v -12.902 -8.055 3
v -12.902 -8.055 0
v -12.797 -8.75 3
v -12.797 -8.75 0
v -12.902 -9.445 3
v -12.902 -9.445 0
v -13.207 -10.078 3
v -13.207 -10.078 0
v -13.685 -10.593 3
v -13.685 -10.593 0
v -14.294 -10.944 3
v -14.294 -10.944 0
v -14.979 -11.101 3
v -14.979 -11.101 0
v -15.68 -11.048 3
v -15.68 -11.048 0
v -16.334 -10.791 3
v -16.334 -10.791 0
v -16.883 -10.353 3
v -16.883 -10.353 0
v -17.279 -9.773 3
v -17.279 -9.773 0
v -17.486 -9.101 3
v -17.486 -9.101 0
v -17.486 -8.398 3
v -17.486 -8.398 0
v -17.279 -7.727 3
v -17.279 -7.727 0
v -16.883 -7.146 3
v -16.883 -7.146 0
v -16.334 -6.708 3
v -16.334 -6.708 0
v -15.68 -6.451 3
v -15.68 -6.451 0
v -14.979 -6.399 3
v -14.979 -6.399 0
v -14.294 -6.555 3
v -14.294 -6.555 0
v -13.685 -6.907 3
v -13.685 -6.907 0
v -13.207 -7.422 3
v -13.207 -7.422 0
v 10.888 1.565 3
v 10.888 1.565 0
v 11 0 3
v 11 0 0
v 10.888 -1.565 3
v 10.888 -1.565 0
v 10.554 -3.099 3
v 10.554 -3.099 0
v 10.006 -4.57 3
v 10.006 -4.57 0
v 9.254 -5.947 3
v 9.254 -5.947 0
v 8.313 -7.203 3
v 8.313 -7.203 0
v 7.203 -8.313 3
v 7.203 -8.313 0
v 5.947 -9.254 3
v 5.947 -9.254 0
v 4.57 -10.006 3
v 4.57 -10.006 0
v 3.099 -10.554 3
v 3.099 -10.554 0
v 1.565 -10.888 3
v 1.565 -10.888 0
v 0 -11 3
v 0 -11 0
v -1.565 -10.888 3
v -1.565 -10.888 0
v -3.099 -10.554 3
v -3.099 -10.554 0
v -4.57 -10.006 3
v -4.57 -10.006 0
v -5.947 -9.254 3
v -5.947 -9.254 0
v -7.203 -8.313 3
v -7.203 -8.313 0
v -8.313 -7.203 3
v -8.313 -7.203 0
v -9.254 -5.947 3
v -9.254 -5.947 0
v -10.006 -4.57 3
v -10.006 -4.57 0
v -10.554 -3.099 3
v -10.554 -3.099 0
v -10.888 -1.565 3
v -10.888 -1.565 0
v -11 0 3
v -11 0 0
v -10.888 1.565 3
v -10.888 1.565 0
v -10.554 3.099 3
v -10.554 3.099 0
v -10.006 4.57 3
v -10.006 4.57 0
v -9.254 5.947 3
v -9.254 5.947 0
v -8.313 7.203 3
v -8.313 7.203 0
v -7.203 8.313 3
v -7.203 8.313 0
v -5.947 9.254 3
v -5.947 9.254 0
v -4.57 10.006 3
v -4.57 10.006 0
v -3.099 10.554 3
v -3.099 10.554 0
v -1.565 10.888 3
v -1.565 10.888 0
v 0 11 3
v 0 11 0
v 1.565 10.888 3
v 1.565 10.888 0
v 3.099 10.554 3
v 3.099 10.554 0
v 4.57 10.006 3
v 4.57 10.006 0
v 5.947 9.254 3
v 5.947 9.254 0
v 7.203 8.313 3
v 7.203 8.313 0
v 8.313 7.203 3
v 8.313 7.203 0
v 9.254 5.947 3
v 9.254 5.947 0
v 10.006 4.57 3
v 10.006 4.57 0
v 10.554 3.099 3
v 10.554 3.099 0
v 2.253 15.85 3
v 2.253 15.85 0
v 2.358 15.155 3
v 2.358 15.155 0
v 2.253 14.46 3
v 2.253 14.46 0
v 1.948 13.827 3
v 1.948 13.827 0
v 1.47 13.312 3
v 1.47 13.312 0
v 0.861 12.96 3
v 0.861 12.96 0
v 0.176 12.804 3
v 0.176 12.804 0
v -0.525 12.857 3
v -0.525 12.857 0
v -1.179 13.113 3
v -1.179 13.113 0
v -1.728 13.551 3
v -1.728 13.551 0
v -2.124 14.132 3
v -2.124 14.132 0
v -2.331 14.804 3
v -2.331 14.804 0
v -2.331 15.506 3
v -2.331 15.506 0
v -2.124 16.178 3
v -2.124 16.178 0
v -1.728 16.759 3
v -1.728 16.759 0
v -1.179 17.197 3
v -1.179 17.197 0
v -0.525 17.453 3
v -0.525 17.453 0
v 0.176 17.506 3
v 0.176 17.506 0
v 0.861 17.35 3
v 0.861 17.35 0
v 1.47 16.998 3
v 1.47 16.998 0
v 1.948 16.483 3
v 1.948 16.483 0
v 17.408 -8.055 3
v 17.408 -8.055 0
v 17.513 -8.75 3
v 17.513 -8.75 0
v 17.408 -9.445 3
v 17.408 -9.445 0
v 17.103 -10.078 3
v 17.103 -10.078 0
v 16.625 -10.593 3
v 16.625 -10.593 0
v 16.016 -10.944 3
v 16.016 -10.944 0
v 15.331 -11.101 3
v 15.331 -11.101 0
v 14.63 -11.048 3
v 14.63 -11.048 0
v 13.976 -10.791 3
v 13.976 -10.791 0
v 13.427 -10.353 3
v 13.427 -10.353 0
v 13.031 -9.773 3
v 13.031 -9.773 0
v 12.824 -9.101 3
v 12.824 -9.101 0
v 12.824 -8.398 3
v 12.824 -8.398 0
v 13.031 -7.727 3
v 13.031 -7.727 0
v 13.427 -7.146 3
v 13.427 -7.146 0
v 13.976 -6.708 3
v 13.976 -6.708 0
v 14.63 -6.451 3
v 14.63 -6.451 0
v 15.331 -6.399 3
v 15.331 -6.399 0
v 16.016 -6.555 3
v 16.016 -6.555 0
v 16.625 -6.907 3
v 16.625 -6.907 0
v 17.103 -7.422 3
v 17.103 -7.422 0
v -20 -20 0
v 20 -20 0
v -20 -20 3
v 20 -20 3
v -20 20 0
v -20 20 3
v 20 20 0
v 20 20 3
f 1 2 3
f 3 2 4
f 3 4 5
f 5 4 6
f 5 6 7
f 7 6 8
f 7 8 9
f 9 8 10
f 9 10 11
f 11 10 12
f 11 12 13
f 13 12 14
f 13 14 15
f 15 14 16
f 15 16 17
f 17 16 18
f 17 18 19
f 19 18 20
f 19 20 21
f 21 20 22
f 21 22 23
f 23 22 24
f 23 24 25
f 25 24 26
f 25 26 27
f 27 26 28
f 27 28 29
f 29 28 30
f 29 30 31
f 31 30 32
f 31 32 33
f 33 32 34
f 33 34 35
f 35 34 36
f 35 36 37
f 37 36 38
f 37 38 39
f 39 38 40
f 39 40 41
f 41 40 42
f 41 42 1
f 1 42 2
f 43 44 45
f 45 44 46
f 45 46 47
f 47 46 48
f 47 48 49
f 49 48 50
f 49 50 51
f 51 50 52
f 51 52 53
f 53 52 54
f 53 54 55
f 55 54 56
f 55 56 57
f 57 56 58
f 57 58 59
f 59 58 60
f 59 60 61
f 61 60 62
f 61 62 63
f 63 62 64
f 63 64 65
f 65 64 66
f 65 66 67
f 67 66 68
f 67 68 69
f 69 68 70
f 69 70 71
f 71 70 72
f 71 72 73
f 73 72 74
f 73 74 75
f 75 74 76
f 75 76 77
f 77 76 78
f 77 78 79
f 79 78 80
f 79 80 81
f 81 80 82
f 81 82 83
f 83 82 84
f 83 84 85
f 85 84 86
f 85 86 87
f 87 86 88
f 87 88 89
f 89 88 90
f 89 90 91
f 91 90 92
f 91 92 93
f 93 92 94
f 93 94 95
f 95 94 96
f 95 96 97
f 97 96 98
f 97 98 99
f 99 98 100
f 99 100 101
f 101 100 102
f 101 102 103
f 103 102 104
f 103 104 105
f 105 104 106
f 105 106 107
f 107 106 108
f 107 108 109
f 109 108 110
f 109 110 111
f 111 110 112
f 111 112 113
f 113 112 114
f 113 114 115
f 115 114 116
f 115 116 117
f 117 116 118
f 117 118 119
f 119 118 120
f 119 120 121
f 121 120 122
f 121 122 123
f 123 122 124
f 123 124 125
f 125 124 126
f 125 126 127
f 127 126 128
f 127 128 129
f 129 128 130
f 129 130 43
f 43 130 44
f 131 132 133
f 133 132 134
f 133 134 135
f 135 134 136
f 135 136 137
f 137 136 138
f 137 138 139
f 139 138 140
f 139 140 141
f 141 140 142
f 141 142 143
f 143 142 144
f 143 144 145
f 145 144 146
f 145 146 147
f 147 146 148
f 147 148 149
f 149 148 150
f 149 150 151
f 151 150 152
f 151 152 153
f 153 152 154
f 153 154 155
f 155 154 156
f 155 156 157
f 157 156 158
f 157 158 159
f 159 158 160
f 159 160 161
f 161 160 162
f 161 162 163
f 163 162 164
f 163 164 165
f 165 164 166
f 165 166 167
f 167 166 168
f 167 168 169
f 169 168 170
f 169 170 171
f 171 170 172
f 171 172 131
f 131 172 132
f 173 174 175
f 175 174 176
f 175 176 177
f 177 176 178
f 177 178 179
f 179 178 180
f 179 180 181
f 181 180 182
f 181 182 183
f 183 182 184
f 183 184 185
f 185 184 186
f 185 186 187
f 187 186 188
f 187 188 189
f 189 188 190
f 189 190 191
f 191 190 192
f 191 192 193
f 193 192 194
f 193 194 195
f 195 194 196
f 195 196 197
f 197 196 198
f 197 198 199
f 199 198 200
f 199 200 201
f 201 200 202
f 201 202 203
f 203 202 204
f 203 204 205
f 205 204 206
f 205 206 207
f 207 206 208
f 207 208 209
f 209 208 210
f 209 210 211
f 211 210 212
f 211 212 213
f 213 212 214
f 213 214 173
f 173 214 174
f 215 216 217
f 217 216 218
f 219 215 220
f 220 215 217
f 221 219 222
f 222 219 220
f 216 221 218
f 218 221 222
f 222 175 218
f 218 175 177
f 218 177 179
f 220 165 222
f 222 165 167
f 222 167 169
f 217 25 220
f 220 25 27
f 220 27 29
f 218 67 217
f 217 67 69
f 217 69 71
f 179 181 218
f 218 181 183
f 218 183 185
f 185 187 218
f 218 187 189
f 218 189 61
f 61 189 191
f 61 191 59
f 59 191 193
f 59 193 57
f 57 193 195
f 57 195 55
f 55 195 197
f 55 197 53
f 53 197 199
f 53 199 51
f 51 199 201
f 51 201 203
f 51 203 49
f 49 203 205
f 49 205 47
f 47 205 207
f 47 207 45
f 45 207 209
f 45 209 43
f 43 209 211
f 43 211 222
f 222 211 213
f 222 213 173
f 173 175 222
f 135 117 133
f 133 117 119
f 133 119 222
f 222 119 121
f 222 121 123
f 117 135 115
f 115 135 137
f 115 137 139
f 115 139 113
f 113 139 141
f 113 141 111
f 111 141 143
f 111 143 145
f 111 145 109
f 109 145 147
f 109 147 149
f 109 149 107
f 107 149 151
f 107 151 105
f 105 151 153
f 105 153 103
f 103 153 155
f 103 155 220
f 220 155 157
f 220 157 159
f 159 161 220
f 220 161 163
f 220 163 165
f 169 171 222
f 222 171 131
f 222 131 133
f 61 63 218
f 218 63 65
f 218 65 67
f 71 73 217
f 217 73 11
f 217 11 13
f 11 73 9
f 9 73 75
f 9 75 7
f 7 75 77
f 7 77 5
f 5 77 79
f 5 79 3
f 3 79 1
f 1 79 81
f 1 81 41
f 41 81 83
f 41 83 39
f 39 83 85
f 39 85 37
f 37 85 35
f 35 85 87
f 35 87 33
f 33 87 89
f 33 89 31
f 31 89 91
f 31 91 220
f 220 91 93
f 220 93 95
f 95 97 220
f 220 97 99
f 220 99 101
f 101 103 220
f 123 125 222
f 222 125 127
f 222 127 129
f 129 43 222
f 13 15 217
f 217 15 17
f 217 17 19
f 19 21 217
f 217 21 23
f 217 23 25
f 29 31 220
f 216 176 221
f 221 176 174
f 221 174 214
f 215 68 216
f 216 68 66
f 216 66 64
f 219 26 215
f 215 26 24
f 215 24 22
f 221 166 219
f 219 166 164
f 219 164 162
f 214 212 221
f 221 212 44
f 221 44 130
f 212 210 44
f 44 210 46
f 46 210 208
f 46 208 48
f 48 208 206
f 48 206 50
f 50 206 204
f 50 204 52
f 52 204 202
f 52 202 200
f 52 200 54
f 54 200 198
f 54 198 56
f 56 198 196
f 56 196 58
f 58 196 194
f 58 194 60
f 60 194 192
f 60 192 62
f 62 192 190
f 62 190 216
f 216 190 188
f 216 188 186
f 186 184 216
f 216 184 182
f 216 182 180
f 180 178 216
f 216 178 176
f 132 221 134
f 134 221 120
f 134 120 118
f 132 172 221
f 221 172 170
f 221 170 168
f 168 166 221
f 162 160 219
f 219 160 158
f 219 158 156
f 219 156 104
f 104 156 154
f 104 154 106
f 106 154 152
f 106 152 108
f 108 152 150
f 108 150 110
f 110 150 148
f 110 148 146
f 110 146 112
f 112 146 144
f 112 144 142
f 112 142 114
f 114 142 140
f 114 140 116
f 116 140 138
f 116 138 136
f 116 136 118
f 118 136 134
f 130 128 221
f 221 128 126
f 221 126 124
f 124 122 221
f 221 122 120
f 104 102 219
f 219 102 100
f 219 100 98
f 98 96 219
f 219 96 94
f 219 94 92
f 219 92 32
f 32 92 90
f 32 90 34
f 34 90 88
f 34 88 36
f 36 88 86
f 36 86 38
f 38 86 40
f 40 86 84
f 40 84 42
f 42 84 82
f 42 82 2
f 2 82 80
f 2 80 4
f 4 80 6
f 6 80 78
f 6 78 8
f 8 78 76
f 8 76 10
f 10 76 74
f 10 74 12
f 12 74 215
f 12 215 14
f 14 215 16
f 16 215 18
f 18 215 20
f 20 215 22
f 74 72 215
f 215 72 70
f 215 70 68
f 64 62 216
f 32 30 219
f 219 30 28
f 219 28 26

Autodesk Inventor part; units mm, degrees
ref_plane "YZ Plane" through (0, 0, 0) normal (1, 0, 0) x (0, 1, 0)
ref_plane "XZ Plane" through (0, 0, 0) normal (0, 1, 0) x (-1, 0, 0)
ref_plane "XY Plane" through (0, 0, 0) normal (0, 0, 1) x (1, 0, 0)
sketch "Sketch1" plane through (0, 0, 0) normal (0, 0, 1) x (1, 0, 0)
  line L0 (-20, -20) -> (20, -20)
  line L1 (20, -20) -> (20, 20)
  line L2 (20, 20) -> (-20, 20)
  line L3 (-20, 20) -> (-20, -20)
  line L4 (-20, -20) -> (20, 20) construction
  line L5 (20, -20) -> (-20, 20) construction
  circle A0 centre (0, 0) radius 11
  line L6 (0, 0) -> (0, 15.155)
  line L7 (0, 0) -> (15.155, -8.7497)
  line L8 (0, 0) -> (-15.155, -8.7497)
  circle A1 centre (0, 15.155) radius 2.3575
  circle A2 centre (15.155, -8.7497) radius 2.3575
  circle A3 centre (-15.155, -8.7497) radius 2.3575
  dimension "d0" = 40
  dimension "d1" = 40
  dimension "d2" = 22
  dimension "d3" = 15.155
  dimension "d4" = 15.155
  dimension "d5" = 120
  dimension "d6" = 15.155
  dimension "d7" = 120
  dimension "d8" = 4.715
  dimension "d9" = 4.715
  dimension "d10" = 4.715
extrude "Extrusion1" add sketch "Sketch1" along normal blind 3
equation "\"d1\" = d0"
equation "\"d4\" = d3"
equation "\"d6\" = d3"
equation "\"d7\" = d5"
equation "\"d9\" = d8"
equation "\"d10\" = d8"
properties part number "mount_v01"
